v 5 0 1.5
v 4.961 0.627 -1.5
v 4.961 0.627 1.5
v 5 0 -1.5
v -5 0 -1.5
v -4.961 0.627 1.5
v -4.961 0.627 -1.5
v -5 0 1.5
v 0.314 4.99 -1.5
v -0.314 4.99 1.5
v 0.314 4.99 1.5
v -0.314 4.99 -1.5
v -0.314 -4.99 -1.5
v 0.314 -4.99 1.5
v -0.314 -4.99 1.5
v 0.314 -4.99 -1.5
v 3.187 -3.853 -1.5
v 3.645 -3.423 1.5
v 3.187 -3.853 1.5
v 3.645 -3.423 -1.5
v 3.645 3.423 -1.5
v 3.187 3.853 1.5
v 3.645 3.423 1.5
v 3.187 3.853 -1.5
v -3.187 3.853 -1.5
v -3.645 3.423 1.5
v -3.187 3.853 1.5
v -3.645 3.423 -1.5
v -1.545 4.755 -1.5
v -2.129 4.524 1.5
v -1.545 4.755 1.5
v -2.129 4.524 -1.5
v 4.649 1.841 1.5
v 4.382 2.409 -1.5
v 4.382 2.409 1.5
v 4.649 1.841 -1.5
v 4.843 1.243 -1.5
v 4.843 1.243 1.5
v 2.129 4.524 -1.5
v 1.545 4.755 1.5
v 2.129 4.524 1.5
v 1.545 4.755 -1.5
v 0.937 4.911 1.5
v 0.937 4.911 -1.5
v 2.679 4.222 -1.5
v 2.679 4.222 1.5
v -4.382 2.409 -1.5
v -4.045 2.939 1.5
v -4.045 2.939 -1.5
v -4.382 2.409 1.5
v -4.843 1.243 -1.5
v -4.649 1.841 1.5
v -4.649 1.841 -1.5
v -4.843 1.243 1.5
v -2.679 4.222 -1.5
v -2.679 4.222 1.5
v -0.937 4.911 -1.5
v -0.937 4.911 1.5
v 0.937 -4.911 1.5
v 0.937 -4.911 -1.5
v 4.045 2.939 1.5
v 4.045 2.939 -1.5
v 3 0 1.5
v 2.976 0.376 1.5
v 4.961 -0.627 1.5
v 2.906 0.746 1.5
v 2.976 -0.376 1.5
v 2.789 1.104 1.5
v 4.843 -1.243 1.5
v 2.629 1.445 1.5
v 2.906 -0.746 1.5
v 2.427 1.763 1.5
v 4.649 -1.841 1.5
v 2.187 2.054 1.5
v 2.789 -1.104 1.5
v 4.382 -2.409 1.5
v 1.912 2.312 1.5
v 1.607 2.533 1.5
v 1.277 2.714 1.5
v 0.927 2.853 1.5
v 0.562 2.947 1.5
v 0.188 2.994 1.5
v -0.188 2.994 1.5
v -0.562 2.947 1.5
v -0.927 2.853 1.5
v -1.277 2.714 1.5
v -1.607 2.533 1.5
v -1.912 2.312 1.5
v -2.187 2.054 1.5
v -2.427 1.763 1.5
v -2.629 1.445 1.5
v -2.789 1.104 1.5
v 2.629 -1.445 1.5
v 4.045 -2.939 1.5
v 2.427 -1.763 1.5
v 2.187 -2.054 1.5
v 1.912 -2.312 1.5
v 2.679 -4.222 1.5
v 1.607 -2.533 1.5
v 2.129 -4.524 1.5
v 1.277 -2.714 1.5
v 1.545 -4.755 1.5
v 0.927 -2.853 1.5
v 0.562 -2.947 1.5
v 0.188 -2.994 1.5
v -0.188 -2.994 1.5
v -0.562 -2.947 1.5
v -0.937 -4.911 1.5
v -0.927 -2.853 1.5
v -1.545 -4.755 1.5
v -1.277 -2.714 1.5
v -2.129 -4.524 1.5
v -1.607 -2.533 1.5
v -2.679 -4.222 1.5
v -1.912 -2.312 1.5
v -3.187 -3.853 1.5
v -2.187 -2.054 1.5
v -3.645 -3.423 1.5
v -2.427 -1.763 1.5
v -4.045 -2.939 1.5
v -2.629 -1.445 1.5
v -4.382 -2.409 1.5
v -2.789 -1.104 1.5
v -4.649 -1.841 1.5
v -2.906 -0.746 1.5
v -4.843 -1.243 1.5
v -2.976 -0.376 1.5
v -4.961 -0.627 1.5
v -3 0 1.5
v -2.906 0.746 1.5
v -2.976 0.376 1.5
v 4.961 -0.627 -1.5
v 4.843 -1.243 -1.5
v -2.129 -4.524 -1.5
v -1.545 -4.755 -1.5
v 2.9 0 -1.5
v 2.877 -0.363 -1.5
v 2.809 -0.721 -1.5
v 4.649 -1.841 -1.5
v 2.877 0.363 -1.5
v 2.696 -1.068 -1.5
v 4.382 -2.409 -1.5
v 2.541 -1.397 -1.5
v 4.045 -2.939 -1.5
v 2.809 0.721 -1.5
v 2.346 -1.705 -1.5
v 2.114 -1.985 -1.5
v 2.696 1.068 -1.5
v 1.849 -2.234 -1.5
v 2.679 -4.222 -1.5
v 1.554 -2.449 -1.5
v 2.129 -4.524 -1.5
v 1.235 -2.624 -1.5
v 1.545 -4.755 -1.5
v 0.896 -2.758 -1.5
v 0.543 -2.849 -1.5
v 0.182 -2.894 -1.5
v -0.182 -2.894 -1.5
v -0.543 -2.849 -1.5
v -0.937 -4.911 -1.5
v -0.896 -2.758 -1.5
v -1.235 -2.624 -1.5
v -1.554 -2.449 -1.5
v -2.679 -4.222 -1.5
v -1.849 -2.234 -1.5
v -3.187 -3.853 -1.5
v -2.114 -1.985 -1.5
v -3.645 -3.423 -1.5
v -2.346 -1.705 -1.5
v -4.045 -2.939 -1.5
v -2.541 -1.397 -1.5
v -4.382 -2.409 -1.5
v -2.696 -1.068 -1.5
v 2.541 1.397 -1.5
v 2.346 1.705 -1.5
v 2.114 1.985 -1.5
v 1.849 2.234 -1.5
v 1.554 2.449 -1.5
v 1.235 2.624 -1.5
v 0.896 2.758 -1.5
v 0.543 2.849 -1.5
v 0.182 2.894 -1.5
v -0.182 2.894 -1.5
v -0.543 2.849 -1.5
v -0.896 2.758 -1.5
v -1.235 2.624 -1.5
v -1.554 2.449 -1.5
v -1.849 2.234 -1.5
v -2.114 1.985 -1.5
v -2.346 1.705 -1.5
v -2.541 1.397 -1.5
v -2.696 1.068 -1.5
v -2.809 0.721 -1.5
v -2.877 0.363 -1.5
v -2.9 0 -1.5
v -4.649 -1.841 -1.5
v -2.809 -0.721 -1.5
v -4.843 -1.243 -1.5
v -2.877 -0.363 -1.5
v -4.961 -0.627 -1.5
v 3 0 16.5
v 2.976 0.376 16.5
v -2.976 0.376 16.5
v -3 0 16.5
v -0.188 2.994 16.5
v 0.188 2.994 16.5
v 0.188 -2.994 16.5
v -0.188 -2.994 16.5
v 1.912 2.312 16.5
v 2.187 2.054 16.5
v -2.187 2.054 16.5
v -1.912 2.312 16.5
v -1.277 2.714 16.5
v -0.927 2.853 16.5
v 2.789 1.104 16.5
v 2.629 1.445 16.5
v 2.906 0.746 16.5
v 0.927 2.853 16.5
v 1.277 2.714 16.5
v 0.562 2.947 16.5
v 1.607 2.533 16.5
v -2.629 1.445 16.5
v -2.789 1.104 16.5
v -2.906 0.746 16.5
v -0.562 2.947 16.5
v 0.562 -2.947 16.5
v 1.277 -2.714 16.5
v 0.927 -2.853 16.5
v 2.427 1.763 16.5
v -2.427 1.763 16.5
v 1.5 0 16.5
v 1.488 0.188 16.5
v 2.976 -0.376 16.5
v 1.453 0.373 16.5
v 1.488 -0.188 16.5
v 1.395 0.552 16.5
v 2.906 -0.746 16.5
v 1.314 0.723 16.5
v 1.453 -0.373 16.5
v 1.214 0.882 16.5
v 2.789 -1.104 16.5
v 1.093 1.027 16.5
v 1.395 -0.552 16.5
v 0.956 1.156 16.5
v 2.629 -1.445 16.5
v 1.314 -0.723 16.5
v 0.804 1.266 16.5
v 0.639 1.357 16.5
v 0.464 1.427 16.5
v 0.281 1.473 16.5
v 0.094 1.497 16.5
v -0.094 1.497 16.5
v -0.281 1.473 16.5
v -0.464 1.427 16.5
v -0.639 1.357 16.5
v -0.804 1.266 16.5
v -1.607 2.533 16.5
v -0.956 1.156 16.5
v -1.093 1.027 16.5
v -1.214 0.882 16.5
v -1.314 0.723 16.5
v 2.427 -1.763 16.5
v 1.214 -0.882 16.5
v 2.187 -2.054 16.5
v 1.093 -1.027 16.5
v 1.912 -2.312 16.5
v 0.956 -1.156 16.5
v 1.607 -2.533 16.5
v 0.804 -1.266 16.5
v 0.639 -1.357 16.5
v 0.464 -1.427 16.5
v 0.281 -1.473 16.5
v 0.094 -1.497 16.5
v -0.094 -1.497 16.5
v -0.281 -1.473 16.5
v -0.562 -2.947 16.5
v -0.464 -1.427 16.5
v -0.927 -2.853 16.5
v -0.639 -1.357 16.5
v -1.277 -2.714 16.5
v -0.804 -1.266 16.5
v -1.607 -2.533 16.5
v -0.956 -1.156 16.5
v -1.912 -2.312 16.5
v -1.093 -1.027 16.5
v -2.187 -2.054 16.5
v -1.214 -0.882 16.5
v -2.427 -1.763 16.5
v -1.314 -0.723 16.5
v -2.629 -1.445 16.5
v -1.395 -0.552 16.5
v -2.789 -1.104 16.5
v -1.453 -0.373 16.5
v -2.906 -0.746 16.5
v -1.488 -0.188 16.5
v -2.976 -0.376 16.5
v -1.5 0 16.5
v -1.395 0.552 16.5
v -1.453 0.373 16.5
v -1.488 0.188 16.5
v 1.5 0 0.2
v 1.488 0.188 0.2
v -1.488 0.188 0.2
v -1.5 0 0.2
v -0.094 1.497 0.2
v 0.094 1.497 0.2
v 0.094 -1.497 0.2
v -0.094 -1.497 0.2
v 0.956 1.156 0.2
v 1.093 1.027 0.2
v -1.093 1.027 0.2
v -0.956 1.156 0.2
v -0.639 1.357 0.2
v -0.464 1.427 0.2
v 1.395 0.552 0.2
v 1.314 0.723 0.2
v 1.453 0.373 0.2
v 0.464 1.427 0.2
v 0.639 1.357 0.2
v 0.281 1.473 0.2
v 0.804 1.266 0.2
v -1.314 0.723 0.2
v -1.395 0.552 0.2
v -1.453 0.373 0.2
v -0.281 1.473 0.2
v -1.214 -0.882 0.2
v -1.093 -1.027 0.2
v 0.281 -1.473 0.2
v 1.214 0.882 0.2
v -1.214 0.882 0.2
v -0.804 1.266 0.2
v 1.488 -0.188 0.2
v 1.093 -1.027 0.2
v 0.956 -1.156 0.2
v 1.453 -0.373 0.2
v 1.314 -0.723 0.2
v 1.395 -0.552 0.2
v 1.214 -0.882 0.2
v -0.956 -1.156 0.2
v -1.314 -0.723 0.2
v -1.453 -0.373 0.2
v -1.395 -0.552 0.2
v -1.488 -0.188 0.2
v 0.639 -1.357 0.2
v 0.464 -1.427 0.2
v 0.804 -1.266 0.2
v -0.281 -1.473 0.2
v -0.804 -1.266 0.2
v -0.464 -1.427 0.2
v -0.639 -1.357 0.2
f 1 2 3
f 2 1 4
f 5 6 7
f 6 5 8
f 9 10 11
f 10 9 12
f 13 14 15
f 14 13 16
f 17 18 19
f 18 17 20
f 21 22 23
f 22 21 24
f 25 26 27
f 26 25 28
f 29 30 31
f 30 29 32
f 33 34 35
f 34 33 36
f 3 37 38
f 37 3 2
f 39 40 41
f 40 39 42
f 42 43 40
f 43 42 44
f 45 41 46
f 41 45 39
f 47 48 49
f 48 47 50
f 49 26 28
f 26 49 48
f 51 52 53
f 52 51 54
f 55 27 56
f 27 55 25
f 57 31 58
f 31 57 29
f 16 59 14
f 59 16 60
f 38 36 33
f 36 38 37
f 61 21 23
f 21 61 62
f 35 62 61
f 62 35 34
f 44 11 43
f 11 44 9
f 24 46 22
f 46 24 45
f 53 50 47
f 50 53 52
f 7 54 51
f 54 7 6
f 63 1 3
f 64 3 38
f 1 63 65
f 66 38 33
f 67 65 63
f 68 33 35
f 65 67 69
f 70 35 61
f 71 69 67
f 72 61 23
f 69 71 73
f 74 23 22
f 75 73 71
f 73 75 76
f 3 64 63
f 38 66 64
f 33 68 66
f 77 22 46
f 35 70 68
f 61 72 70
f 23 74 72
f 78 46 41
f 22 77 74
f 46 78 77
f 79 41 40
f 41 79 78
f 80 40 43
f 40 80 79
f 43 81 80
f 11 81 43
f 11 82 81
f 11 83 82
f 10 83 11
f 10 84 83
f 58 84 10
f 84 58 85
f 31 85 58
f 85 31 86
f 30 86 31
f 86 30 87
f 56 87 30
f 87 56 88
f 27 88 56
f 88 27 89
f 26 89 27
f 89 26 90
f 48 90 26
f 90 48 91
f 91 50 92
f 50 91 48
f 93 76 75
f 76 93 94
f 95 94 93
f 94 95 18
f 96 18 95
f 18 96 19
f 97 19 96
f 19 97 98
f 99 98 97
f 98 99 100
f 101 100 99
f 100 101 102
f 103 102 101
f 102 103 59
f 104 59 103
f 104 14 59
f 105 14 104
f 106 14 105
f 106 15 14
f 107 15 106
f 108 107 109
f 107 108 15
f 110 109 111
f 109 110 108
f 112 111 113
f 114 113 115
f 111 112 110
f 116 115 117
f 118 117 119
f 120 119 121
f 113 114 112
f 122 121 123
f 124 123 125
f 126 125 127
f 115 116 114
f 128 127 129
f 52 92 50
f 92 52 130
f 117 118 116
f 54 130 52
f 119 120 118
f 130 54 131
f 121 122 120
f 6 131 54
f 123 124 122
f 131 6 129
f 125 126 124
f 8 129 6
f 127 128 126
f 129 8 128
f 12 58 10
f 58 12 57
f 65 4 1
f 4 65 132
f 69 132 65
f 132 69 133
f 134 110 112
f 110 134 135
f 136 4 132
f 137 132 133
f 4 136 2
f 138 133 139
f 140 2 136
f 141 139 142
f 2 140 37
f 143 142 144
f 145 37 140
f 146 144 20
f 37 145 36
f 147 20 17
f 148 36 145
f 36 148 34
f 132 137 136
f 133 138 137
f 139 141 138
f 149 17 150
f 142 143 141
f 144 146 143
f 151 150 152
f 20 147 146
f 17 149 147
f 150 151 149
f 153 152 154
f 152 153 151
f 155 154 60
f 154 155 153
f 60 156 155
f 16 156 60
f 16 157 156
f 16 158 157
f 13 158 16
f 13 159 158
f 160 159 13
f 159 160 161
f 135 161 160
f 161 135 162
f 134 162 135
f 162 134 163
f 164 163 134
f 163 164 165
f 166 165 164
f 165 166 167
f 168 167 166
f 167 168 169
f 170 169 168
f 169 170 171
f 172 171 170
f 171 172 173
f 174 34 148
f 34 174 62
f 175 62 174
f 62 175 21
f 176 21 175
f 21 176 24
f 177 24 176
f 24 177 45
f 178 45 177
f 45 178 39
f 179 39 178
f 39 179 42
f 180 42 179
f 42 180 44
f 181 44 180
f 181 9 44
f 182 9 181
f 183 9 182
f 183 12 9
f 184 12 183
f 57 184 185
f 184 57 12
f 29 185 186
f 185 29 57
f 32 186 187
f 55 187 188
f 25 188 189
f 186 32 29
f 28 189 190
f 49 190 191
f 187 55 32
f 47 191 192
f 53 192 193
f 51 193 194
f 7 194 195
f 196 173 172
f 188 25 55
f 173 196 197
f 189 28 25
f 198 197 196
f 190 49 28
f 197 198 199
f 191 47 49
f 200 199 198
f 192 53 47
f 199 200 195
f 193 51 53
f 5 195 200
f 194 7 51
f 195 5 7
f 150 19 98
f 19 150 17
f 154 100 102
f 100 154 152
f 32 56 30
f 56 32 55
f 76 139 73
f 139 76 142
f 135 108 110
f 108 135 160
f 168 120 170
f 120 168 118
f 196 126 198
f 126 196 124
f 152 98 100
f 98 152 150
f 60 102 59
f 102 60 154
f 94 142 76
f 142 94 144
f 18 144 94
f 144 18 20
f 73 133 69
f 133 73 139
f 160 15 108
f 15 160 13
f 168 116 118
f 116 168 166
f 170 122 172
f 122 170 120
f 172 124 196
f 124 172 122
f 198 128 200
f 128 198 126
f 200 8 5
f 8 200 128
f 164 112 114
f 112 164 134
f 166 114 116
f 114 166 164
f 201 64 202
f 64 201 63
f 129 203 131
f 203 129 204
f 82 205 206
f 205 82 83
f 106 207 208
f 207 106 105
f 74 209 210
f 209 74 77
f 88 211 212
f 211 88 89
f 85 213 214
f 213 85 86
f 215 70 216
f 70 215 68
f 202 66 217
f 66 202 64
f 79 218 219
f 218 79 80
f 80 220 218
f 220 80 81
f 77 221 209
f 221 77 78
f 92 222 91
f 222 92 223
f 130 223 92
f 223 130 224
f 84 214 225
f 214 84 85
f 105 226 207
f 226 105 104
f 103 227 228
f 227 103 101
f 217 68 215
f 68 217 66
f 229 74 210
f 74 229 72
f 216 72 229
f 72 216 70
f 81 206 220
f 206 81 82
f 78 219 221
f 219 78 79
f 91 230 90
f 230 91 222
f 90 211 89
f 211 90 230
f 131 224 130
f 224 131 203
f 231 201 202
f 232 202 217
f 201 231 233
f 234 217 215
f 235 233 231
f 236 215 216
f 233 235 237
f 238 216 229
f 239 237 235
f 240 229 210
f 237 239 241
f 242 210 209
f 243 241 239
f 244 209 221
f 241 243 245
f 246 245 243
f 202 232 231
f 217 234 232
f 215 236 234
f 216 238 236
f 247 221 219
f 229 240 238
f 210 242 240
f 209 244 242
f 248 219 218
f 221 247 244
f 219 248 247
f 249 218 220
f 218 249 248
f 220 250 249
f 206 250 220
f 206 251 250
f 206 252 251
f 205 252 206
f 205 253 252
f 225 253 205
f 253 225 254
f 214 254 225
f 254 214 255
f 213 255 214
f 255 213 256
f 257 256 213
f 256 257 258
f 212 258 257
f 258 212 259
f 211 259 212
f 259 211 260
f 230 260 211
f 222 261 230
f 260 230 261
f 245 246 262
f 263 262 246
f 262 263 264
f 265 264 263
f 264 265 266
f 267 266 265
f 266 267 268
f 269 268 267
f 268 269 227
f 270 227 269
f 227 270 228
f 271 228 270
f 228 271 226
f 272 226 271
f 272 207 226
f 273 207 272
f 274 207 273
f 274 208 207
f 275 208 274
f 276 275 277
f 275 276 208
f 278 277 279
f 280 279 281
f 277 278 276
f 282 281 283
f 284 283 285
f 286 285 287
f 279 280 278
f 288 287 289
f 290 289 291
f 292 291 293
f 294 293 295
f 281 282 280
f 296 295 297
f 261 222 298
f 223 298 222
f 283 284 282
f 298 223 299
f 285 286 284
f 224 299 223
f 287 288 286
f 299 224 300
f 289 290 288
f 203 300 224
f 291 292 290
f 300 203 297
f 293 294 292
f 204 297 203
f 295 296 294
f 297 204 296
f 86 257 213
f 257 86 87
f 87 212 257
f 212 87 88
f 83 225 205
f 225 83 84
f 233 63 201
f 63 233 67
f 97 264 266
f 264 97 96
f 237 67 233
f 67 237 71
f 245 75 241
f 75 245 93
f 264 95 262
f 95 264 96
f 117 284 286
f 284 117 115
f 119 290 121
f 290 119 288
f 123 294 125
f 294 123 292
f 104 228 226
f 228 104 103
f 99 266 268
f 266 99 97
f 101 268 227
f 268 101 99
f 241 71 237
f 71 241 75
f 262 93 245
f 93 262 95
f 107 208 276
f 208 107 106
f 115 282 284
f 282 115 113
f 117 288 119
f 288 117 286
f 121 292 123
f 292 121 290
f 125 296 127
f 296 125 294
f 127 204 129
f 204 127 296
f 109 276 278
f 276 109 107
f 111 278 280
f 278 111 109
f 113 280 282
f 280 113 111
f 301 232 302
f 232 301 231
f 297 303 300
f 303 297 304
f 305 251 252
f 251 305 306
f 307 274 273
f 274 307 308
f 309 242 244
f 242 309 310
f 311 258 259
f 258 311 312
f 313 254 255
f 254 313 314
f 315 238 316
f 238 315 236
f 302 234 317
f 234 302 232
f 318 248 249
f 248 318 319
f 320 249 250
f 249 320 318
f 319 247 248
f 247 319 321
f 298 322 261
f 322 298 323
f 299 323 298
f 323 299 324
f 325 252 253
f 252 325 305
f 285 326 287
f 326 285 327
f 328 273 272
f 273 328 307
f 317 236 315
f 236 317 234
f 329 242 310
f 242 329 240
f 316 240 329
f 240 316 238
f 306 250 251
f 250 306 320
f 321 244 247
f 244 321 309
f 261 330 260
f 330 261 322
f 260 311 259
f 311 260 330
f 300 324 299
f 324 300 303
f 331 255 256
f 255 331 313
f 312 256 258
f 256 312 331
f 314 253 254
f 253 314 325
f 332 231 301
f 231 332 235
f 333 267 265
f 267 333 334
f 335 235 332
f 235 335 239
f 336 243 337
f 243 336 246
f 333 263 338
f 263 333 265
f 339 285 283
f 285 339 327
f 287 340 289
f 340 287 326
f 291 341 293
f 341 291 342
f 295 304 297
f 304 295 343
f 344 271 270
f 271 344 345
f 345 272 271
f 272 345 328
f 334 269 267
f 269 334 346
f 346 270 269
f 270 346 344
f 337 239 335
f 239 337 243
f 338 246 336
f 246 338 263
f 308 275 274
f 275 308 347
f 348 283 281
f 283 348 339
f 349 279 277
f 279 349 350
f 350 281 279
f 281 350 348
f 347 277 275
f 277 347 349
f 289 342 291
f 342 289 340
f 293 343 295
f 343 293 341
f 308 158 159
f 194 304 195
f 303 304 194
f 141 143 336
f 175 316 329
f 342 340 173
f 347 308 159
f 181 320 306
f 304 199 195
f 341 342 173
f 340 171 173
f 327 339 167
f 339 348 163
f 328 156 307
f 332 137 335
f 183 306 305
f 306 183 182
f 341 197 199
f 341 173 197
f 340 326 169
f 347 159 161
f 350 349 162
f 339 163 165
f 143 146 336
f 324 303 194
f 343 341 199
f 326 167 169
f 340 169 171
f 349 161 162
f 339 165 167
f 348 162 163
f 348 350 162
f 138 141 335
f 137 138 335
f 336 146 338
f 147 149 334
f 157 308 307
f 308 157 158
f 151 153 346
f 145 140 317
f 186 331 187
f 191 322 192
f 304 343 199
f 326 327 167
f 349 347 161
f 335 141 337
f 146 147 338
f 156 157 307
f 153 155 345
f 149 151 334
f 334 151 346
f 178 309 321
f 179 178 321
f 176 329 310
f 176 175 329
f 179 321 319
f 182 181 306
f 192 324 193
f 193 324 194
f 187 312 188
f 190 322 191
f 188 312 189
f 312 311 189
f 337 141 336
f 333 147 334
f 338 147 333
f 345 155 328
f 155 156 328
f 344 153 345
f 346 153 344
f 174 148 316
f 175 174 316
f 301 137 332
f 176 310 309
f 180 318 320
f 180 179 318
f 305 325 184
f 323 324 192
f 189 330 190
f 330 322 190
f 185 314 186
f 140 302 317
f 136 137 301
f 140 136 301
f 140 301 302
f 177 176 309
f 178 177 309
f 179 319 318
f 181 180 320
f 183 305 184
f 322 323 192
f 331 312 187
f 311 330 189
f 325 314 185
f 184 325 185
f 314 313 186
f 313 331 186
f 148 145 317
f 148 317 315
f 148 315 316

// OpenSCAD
$fn = 50;


difference() {
	union() {
		translate(v = [0, 0, -1.5000000000]) {
			rotate(a = [0, 0, 0]) {
				cylinder(h = 3, r = 5.0000000000);
			}
		}
		translate(v = [0, 0, -1.5000000000]) {
			rotate(a = [0, 0, 0]) {
				cylinder(h = 18, r = 3.0000000000);
			}
		}
	}
	union() {
		translate(v = [0, 0, -125.0000000000]) {
			rotate(a = [0, 0, 0]) {
				cylinder(h = 250, r = 1.5000000000);
			}
		}
		#translate(v = [0, 0, 0.2000000000]) {
			rotate(a = [0, 180, 0]) {
				cylinder(h = 1.7000000000, r1 = 1.5000000000, r2 = 2.9000000000);
			}
		}
		#translate(v = [0, 0, 16.5000000000]) {
			rotate(a = [0, 180, 0]) {
				cylinder(h = 18, r = 1.5000000000);
			}
		}
	}
}
